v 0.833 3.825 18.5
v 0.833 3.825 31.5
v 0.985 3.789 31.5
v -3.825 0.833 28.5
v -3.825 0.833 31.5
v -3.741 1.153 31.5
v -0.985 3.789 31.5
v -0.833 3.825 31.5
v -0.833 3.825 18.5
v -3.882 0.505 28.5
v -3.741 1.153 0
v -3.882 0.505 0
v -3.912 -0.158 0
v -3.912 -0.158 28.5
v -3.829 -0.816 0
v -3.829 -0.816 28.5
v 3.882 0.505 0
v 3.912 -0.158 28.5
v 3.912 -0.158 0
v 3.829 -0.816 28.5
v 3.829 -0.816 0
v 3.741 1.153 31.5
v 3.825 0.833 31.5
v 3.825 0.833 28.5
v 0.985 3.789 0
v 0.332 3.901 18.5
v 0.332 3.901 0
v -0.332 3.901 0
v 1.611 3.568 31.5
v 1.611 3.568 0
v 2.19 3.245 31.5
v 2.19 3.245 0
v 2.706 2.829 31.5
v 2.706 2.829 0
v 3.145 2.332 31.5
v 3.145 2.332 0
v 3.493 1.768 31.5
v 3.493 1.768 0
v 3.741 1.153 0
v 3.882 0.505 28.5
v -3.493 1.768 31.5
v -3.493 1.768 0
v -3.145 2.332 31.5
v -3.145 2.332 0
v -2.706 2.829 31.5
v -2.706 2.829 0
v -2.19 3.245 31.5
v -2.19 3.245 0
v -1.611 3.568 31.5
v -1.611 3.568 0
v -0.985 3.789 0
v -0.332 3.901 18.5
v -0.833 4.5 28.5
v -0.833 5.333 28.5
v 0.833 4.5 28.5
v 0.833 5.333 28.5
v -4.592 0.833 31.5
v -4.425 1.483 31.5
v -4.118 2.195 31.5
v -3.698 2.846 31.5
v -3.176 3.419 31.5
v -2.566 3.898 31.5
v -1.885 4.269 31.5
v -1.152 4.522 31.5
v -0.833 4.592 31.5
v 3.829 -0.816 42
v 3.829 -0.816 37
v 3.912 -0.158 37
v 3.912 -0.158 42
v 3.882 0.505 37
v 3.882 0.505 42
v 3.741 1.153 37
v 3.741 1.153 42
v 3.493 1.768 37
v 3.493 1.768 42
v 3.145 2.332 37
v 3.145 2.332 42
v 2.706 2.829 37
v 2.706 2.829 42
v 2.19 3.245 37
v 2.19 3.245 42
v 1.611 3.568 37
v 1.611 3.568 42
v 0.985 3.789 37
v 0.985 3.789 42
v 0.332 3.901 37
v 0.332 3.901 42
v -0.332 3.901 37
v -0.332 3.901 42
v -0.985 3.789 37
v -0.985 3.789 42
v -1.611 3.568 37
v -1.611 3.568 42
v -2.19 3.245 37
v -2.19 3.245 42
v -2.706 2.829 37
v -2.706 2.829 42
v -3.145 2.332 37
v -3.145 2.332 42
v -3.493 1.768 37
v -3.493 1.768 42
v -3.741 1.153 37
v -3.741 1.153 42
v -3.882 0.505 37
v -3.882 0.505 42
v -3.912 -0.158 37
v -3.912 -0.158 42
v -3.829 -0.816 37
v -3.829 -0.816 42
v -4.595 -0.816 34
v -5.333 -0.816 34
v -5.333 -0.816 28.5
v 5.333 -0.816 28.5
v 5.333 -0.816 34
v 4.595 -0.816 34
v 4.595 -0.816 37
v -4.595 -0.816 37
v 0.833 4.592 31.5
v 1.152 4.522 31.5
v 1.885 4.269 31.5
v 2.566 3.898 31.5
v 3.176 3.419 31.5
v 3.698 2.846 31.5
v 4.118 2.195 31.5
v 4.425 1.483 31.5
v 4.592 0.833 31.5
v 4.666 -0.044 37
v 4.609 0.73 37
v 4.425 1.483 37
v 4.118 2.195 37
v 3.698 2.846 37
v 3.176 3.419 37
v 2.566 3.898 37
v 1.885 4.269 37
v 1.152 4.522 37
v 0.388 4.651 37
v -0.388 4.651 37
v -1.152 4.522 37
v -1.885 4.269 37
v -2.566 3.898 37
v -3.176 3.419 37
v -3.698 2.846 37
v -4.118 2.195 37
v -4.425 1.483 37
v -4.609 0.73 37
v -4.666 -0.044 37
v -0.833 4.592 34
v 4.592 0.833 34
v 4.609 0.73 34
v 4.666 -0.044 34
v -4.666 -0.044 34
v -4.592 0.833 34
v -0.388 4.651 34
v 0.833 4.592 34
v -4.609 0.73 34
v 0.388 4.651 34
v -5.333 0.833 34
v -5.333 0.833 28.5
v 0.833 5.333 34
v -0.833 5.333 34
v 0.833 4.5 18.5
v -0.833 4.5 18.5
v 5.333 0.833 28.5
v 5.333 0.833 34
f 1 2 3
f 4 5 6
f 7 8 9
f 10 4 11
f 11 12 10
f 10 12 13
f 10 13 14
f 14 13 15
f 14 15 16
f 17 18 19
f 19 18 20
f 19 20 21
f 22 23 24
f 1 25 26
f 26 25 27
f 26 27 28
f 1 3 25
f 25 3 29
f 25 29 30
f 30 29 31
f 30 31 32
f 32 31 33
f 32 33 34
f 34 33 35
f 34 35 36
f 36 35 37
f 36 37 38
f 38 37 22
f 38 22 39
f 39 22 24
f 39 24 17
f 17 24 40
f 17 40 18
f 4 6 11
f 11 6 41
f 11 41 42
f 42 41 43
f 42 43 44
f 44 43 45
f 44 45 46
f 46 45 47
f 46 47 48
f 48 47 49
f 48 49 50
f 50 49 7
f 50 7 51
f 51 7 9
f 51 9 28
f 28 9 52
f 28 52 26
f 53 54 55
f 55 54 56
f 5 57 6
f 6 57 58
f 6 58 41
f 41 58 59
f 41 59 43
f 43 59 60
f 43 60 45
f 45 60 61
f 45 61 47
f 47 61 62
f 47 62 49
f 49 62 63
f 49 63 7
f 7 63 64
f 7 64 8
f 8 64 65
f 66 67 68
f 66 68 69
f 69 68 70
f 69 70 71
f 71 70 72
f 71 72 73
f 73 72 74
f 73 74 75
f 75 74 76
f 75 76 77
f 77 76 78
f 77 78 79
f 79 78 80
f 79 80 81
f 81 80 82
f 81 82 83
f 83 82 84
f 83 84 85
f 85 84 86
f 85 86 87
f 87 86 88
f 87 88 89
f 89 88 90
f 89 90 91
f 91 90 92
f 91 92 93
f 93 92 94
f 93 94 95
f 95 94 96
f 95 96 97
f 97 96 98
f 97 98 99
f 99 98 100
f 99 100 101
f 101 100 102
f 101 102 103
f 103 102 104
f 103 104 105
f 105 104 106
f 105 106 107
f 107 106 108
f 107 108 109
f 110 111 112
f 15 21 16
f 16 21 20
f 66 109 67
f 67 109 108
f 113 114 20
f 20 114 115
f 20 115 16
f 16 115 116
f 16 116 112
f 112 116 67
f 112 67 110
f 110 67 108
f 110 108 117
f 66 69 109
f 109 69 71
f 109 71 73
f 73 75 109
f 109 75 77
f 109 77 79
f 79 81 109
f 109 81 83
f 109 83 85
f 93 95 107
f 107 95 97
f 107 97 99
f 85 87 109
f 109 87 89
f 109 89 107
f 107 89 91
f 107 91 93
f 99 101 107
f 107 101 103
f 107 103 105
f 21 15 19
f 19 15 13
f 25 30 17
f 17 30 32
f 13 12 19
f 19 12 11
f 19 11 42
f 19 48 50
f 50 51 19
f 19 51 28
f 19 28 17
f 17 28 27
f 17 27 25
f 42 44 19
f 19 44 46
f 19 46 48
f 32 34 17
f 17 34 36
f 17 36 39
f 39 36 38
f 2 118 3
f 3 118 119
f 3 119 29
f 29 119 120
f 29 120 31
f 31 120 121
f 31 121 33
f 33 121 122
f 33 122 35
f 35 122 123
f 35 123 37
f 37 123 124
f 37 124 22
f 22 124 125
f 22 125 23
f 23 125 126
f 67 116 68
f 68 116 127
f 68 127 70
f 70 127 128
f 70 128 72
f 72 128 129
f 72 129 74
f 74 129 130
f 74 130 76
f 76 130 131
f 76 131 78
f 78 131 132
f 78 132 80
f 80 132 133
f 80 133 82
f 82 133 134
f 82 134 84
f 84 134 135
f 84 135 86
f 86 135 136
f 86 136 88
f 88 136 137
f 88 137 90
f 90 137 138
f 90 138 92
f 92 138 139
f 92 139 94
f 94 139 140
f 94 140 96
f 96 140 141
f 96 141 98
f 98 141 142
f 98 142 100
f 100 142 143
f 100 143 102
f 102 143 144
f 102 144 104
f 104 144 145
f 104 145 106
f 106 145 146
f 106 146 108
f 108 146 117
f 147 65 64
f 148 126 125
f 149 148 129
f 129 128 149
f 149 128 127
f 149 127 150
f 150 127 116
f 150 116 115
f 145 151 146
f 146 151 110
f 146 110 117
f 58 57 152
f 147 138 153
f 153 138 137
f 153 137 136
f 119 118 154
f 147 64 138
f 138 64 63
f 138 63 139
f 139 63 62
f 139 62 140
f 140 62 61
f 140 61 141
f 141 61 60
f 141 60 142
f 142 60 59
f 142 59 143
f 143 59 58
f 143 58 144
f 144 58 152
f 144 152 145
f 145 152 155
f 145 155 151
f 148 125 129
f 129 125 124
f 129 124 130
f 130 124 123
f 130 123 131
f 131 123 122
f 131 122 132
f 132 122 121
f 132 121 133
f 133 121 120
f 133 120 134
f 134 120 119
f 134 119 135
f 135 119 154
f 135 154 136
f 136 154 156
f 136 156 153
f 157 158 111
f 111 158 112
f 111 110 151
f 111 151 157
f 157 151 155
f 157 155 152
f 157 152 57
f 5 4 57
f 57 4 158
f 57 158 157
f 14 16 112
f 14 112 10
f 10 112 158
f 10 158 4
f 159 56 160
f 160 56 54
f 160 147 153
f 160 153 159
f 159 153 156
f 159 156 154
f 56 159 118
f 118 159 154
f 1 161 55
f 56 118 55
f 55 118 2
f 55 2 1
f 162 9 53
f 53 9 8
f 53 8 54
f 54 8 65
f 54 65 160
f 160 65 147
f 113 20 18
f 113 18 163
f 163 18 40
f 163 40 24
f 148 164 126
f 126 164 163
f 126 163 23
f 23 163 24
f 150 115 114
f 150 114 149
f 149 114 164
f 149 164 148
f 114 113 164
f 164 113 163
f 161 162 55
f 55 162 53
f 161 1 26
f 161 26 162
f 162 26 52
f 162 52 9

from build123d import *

# Parameters (mm, degrees)
BOSS_EXTRUDE1_DEPTH      = 42
BOSS_EXTRUDE2_START      = -5
BOSS_EXTRUDE2_DEPTH      = 5.5
BOSS_EXTRUDE4_DEPTH      = 2.5
BOSS_EXTRUDE4_DEPTH_BACK = 3
SKETCH6_W                = 1.666666666
SKETCH6_H                = 4.236096709
BOSS_EXTRUDE5_DEPTH      = 10


with BuildPart() as part:
    # Sketch1 → Boss-Extrude1 (new body)
    with BuildSketch(Plane.XY):
        with BuildLine():
            Line((3.829096611, -0.815625), (-3.829096611, -0.815625))
            ThreePointArc((-3.829096611, -0.815625), (0, 3.915), (3.829096611, -0.815625))
        make_face()
    extrude(amount=BOSS_EXTRUDE1_DEPTH)

    # Sketch2 → Boss-Extrude2 (add)
    with BuildSketch(Plane.XY.offset(42).offset(BOSS_EXTRUDE2_START)):
        with BuildLine():
            Line((4.594837716, -0.815625), (-4.594837716, -0.815625))
            ThreePointArc((-4.594837716, -0.815625), (-4.648674746, -0.40939087), (-4.666666667, 0))
            ThreePointArc((-4.666666667, 0), (0, 4.666666667), (4.666666667, 0))
            ThreePointArc((4.666666667, 0), (4.648674746, -0.40939087), (4.594837716, -0.815625))
        make_face()
    extrude(amount=-BOSS_EXTRUDE2_DEPTH)

    # Sketch5 → Boss-Extrude4 (add, two sides: drawn at the far end of the back side and taken through both)
    with BuildSketch(Plane.XY.offset(31.5).offset(-BOSS_EXTRUDE4_DEPTH_BACK)):
        with BuildLine():
            Line((5.333333333, 0.833333333), (3.825281762, 0.833333333))
            ThreePointArc((3.825281762, 0.833333333), (2.768323048, 2.768323048), (0.833333333, 3.825281762))
            Line((0.833333333, 3.825281762), (0.833333333, 5.333333333))
            Line((0.833333333, 5.333333333), (-0.833333333, 5.333333333))
            Line((-0.833333333, 5.333333333), (-0.833333333, 3.825281762))
            ThreePointArc((-0.833333333, 3.825281762), (-2.768323048, 2.768323048), (-3.825281762, 0.833333333))
            Line((-3.825281762, 0.833333333), (-5.333333333, 0.833333333))
            Line((-5.333333333, 0.833333333), (-5.333333333, -0.815625))
            Line((-5.333333333, -0.815625), (5.333333333, -0.815625))
            Line((5.333333333, -0.815625), (5.333333333, 0.833333333))
        make_face()
    extrude(amount=BOSS_EXTRUDE4_DEPTH + BOSS_EXTRUDE4_DEPTH_BACK)

    # Sketch6 → Boss-Extrude5 (add)
    with BuildSketch(Plane(origin=(0, 0, 28.5), x_dir=(-1, 0, 0), z_dir=(0, 0, -1))):
        with Locations((0, 2.381951646)):
            Rectangle(SKETCH6_W, SKETCH6_H)
    extrude(amount=BOSS_EXTRUDE5_DEPTH)


solid = part.part
